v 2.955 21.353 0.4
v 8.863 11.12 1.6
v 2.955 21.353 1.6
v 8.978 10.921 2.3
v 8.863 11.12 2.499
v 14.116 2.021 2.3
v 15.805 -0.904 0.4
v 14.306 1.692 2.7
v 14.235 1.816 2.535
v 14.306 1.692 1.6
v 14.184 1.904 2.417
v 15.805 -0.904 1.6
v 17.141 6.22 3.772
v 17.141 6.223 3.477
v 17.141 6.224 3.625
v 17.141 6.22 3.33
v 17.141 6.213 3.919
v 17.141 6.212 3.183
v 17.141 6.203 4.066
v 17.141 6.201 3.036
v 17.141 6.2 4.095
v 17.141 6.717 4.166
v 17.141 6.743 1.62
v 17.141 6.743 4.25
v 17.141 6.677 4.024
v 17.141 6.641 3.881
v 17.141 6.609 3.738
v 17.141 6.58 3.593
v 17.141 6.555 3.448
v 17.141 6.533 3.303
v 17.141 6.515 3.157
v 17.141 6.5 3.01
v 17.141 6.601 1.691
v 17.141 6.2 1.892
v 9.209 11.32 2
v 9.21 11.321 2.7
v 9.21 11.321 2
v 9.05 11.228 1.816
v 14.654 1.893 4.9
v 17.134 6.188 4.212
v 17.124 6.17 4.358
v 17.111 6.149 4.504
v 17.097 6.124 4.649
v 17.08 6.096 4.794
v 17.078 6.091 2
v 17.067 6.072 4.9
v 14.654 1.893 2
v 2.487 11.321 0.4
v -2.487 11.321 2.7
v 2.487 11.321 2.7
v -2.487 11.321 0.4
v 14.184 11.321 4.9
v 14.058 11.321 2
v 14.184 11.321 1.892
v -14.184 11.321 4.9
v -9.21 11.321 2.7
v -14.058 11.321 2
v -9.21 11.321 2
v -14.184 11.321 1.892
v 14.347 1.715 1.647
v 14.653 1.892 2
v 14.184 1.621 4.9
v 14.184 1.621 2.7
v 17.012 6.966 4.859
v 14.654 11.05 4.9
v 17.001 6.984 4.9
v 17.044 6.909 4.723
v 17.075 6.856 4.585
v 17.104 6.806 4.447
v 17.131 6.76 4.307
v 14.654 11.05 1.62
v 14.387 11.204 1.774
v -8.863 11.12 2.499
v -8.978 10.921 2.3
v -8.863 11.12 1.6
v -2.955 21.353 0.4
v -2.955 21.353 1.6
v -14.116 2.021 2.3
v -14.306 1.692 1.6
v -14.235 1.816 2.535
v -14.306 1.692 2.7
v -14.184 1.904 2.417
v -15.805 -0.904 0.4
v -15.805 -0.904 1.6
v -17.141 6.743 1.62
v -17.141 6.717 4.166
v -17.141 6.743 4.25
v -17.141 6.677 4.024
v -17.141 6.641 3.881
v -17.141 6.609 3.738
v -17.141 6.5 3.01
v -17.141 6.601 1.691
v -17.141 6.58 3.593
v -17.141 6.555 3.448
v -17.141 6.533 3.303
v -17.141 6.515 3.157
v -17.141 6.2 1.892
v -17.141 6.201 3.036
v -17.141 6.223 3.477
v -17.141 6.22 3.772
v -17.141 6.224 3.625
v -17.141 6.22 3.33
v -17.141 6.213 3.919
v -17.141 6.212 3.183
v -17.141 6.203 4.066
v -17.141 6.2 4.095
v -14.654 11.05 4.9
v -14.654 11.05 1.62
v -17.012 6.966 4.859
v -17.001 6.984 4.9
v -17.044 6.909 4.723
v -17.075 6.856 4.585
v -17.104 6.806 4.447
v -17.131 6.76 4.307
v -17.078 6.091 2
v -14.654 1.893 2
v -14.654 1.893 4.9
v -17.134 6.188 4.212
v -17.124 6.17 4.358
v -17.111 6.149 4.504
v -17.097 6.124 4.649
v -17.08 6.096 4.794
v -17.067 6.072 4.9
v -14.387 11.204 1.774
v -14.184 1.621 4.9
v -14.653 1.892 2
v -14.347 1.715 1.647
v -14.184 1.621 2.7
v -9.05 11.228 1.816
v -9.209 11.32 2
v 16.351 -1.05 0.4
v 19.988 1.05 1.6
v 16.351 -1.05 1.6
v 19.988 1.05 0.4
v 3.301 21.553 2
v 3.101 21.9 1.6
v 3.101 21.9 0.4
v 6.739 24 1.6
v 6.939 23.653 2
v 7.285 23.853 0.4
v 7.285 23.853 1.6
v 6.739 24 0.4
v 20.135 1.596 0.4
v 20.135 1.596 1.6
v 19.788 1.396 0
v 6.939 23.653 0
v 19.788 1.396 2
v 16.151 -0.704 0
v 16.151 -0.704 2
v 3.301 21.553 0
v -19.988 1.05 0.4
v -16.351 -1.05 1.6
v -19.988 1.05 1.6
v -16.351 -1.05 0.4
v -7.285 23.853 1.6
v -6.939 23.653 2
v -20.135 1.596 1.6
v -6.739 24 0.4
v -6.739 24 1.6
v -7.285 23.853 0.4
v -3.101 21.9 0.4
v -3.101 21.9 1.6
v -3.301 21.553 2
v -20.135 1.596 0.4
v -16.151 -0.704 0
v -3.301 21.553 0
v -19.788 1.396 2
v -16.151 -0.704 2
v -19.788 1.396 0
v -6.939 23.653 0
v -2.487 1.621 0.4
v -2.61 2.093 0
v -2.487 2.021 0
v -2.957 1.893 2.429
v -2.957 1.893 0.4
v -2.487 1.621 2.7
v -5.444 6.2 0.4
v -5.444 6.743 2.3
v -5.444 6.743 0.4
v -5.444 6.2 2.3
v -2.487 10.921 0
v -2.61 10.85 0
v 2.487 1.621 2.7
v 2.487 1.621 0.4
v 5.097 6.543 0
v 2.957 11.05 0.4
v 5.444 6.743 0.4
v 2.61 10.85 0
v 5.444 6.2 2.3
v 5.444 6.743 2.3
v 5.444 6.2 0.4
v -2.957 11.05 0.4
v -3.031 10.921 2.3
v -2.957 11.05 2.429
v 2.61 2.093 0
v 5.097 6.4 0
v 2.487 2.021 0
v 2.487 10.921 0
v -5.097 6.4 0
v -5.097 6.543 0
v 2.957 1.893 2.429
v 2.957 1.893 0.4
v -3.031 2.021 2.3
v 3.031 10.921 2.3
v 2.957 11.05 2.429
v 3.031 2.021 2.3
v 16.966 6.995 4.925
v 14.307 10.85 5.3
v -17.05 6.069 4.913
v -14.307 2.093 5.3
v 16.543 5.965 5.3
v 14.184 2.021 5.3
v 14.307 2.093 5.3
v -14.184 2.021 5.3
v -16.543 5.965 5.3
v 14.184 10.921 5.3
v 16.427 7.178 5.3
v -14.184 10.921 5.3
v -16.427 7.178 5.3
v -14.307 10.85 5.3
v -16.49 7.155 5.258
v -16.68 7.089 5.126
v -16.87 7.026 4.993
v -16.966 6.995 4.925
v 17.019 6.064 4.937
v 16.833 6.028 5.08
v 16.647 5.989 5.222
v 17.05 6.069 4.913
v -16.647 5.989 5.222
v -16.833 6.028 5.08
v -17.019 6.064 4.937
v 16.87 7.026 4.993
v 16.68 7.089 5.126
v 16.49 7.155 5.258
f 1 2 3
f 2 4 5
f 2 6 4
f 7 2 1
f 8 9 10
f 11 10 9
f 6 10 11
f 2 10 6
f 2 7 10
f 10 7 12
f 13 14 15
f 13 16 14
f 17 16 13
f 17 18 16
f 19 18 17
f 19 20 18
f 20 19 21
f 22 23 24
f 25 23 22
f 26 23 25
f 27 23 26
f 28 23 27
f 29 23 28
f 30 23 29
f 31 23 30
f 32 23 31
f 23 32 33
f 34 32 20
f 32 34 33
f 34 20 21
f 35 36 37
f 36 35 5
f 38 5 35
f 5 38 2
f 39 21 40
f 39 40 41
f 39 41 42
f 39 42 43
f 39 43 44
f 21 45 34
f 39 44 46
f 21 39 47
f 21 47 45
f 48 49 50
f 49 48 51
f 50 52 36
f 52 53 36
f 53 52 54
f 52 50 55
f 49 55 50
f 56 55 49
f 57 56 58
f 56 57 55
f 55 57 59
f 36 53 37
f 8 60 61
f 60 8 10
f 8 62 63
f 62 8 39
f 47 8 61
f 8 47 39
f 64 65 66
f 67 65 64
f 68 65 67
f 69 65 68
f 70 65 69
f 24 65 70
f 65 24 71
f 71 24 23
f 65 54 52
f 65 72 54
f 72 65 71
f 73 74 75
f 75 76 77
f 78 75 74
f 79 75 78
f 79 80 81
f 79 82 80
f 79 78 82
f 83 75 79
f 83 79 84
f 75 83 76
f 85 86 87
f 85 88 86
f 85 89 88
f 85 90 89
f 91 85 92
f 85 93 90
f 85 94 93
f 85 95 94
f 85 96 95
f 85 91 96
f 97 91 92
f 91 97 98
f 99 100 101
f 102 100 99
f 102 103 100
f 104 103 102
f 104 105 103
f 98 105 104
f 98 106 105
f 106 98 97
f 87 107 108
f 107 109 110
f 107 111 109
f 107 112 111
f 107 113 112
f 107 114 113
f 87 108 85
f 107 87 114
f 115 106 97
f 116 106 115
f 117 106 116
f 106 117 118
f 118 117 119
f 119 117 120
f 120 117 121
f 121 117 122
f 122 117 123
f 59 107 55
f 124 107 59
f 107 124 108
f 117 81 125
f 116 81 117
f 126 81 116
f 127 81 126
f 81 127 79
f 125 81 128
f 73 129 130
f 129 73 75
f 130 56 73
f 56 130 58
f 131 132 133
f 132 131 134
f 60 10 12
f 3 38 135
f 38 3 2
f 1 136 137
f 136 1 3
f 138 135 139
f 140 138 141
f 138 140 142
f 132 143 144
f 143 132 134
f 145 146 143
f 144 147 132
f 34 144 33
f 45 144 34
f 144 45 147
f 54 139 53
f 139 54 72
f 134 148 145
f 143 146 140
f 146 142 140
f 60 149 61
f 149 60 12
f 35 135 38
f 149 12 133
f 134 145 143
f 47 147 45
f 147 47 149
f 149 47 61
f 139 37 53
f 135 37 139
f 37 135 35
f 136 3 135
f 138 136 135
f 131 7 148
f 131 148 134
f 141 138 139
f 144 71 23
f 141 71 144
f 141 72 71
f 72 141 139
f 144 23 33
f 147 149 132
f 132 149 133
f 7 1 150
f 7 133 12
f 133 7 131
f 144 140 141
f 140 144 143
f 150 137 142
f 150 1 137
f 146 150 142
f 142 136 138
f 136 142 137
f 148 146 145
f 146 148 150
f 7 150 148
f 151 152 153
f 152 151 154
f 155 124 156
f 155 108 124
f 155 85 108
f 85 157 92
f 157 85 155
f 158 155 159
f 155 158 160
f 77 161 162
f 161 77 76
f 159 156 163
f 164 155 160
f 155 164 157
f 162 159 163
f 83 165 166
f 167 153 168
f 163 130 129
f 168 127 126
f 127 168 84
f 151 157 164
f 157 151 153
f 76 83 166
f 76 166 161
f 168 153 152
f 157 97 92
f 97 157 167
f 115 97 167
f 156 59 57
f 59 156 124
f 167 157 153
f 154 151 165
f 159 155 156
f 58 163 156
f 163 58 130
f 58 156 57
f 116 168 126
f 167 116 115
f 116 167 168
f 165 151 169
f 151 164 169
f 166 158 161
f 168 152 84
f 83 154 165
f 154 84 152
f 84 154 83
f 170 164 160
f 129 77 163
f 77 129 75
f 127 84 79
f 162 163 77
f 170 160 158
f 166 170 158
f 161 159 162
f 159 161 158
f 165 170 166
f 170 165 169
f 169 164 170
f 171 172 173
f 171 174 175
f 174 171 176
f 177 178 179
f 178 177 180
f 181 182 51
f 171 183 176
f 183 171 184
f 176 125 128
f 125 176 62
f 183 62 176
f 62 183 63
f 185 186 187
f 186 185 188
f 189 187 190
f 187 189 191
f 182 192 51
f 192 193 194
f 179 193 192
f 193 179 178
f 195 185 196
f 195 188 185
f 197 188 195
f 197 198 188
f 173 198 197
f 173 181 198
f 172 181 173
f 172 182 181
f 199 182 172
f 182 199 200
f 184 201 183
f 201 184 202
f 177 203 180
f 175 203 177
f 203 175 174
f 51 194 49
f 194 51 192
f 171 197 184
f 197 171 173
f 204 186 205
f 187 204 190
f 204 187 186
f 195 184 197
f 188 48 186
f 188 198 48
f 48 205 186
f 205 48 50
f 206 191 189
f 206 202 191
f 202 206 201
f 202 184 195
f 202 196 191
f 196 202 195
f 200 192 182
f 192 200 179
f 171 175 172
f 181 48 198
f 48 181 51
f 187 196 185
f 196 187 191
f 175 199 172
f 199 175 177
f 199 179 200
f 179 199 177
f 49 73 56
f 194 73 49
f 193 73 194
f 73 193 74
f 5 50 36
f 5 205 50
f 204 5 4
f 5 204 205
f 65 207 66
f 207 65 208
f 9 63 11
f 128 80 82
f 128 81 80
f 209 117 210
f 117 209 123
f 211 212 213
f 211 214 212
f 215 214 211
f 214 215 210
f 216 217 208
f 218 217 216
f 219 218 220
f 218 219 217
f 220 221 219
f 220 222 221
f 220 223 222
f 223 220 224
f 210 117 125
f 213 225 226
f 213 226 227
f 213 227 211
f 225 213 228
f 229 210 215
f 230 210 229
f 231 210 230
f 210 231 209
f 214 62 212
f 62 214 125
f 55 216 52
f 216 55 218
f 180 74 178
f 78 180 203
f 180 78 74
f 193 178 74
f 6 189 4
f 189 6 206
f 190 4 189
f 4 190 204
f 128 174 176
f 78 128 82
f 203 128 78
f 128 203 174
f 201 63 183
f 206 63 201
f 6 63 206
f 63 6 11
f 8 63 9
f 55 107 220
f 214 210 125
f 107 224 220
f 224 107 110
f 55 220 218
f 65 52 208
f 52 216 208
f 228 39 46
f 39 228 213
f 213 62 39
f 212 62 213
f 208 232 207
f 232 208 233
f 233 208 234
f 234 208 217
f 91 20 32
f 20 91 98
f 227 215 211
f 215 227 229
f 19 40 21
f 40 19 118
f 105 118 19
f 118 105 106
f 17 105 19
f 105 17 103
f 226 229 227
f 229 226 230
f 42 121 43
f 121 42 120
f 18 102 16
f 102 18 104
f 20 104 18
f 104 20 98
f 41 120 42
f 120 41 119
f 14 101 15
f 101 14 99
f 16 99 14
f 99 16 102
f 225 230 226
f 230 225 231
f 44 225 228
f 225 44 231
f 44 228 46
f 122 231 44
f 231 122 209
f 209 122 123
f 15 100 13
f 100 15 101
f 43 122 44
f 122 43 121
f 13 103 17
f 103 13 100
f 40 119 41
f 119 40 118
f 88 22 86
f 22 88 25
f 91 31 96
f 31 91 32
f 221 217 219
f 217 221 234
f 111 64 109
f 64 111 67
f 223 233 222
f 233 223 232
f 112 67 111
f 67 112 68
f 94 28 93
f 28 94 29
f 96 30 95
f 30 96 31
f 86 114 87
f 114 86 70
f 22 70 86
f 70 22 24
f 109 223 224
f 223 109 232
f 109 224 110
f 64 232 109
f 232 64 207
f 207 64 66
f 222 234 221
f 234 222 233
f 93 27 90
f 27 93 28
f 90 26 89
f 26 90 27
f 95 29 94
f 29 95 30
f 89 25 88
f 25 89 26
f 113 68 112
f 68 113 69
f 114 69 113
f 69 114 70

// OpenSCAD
$fn=256;$fa=6;


difference() {
	union() {
		translate(v = [18.1698729811, 0, 0]) {
			rotate(a = [0, 0, 30]) {
				translate(v = [0, 13.2500000000, 1.0000000000]) {
					hull() {
						cube(center = true, size = [5, 25.7000000000, 1.2000000000]);
						cube(center = true, size = [4.2000000000, 26.5000000000, 1.2000000000]);
						cube(center = true, size = [4.2000000000, 25.7000000000, 2]);
					}
				}
			}
		}
		translate(v = [-18.1698729811, 0, 0]) {
			rotate(a = [0, 0, -30]) {
				translate(v = [0, 13.2500000000, 1.0000000000]) {
					hull() {
						cube(center = true, size = [5, 25.7000000000, 1.2000000000]);
						cube(center = true, size = [4.2000000000, 26.5000000000, 1.2000000000]);
						cube(center = true, size = [4.2000000000, 25.7000000000, 2]);
					}
				}
			}
		}
		translate(v = [0, 6.4711431703, 2.5000000000]) {
			hull() {
				hull() {
					cube(center = true, size = [5.7735026919, 8.9000000000, 4.2000000000]);
					cube(center = true, size = [4.9735026919, 9.7000000000, 4.2000000000]);
					cube(center = true, size = [4.9735026919, 8.9000000000, 5]);
				}
				rotate(a = [0, 0, 60]) {
					hull() {
						cube(center = true, size = [5.7735026919, 8.9000000000, 4.2000000000]);
						cube(center = true, size = [4.9735026919, 9.7000000000, 4.2000000000]);
						cube(center = true, size = [4.9735026919, 8.9000000000, 5]);
					}
				}
				rotate(a = [0, 0, 120]) {
					hull() {
						cube(center = true, size = [5.7735026919, 8.9000000000, 4.2000000000]);
						cube(center = true, size = [4.9735026919, 9.7000000000, 4.2000000000]);
						cube(center = true, size = [4.9735026919, 8.9000000000, 5]);
					}
				}
			}
		}
		hull() {
			translate(v = [11.6970053838, 0, 0]) {
				translate(v = [0, 6.4711431703, 3.8000000000]) {
					hull() {
						hull() {
							cube(center = true, size = [5.7735026919, 8.9000000000, 2.2000000000]);
							cube(center = true, size = [4.9735026919, 9.7000000000, 2.2000000000]);
							cube(center = true, size = [4.9735026919, 8.9000000000, 3]);
						}
						rotate(a = [0, 0, 60]) {
							hull() {
								cube(center = true, size = [5.7735026919, 8.9000000000, 2.2000000000]);
								cube(center = true, size = [4.9735026919, 9.7000000000, 2.2000000000]);
								cube(center = true, size = [4.9735026919, 8.9000000000, 3]);
							}
						}
						rotate(a = [0, 0, 120]) {
							hull() {
								cube(center = true, size = [5.7735026919, 8.9000000000, 2.2000000000]);
								cube(center = true, size = [4.9735026919, 9.7000000000, 2.2000000000]);
								cube(center = true, size = [4.9735026919, 8.9000000000, 3]);
							}
						}
					}
				}
			}
			translate(v = [-11.6970053838, 0, 0]) {
				translate(v = [0, 6.4711431703, 3.8000000000]) {
					hull() {
						hull() {
							cube(center = true, size = [5.7735026919, 8.9000000000, 2.2000000000]);
							cube(center = true, size = [4.9735026919, 9.7000000000, 2.2000000000]);
							cube(center = true, size = [4.9735026919, 8.9000000000, 3]);
						}
						rotate(a = [0, 0, 60]) {
							hull() {
								cube(center = true, size = [5.7735026919, 8.9000000000, 2.2000000000]);
								cube(center = true, size = [4.9735026919, 9.7000000000, 2.2000000000]);
								cube(center = true, size = [4.9735026919, 8.9000000000, 3]);
							}
						}
						rotate(a = [0, 0, 120]) {
							hull() {
								cube(center = true, size = [5.7735026919, 8.9000000000, 2.2000000000]);
								cube(center = true, size = [4.9735026919, 9.7000000000, 2.2000000000]);
								cube(center = true, size = [4.9735026919, 8.9000000000, 3]);
							}
						}
					}
				}
			}
		}
		translate(v = [0, 0, 1.1000000000]) {
			intersection() {
				translate(v = [18.1698729811, 0, 0]) {
					rotate(a = [0, 0, 30]) {
						translate(v = [0, 13.2500000000, 1.0000000000]) {
							hull() {
								cube(center = true, size = [5, 25.7000000000, 1.2000000000]);
								cube(center = true, size = [4.2000000000, 26.5000000000, 1.2000000000]);
								cube(center = true, size = [4.2000000000, 25.7000000000, 2]);
							}
						}
					}
				}
				translate(v = [11.6970053838, 0, 0]) {
					translate(v = [0, 6.4711431703, 1.5000000000]) {
						hull() {
							hull() {
								cube(center = true, size = [5.7735026919, 8.9000000000, 2.2000000000]);
								cube(center = true, size = [4.9735026919, 9.7000000000, 2.2000000000]);
								cube(center = true, size = [4.9735026919, 8.9000000000, 3]);
							}
							rotate(a = [0, 0, 60]) {
								hull() {
									cube(center = true, size = [5.7735026919, 8.9000000000, 2.2000000000]);
									cube(center = true, size = [4.9735026919, 9.7000000000, 2.2000000000]);
									cube(center = true, size = [4.9735026919, 8.9000000000, 3]);
								}
							}
							rotate(a = [0, 0, 120]) {
								hull() {
									cube(center = true, size = [5.7735026919, 8.9000000000, 2.2000000000]);
									cube(center = true, size = [4.9735026919, 9.7000000000, 2.2000000000]);
									cube(center = true, size = [4.9735026919, 8.9000000000, 3]);
								}
							}
						}
					}
				}
			}
		}
		translate(v = [0, 0, 1.1000000000]) {
			intersection() {
				translate(v = [-18.1698729811, 0, 0]) {
					rotate(a = [0, 0, -30]) {
						translate(v = [0, 13.2500000000, 1.0000000000]) {
							hull() {
								cube(center = true, size = [5, 25.7000000000, 1.2000000000]);
								cube(center = true, size = [4.2000000000, 26.5000000000, 1.2000000000]);
								cube(center = true, size = [4.2000000000, 25.7000000000, 2]);
							}
						}
					}
				}
				translate(v = [-11.6970053838, 0, 0]) {
					translate(v = [0, 6.4711431703, 1.5000000000]) {
						hull() {
							hull() {
								cube(center = true, size = [5.7735026919, 8.9000000000, 2.2000000000]);
								cube(center = true, size = [4.9735026919, 9.7000000000, 2.2000000000]);
								cube(center = true, size = [4.9735026919, 8.9000000000, 3]);
							}
							rotate(a = [0, 0, 60]) {
								hull() {
									cube(center = true, size = [5.7735026919, 8.9000000000, 2.2000000000]);
									cube(center = true, size = [4.9735026919, 9.7000000000, 2.2000000000]);
									cube(center = true, size = [4.9735026919, 8.9000000000, 3]);
								}
							}
							rotate(a = [0, 0, 120]) {
								hull() {
									cube(center = true, size = [5.7735026919, 8.9000000000, 2.2000000000]);
									cube(center = true, size = [4.9735026919, 9.7000000000, 2.2000000000]);
									cube(center = true, size = [4.9735026919, 8.9000000000, 3]);
								}
							}
						}
					}
				}
			}
		}
	}
	translate(v = [0, 0, 1]) {
		translate(v = [0, 6.5000000000, 2.0100000000]) {
			rotate(a = [5, 0, 180]) {
				difference() {
					translate(v = [0, 0, 10]) {
						cube(center = true, size = [50, 3, 20]);
					}
					translate(v = [0, 6.3000000000, 0]) {
						rotate(a = [0, 90, 0]) {
							cylinder(center = true, h = 50, r = 6);
						}
					}
					translate(v = [0, -6, 0]) {
						rotate(a = [0, 90, 0]) {
							cylinder(center = true, h = 50, r = 6);
						}
					}
				}
			}
		}
	}
}
